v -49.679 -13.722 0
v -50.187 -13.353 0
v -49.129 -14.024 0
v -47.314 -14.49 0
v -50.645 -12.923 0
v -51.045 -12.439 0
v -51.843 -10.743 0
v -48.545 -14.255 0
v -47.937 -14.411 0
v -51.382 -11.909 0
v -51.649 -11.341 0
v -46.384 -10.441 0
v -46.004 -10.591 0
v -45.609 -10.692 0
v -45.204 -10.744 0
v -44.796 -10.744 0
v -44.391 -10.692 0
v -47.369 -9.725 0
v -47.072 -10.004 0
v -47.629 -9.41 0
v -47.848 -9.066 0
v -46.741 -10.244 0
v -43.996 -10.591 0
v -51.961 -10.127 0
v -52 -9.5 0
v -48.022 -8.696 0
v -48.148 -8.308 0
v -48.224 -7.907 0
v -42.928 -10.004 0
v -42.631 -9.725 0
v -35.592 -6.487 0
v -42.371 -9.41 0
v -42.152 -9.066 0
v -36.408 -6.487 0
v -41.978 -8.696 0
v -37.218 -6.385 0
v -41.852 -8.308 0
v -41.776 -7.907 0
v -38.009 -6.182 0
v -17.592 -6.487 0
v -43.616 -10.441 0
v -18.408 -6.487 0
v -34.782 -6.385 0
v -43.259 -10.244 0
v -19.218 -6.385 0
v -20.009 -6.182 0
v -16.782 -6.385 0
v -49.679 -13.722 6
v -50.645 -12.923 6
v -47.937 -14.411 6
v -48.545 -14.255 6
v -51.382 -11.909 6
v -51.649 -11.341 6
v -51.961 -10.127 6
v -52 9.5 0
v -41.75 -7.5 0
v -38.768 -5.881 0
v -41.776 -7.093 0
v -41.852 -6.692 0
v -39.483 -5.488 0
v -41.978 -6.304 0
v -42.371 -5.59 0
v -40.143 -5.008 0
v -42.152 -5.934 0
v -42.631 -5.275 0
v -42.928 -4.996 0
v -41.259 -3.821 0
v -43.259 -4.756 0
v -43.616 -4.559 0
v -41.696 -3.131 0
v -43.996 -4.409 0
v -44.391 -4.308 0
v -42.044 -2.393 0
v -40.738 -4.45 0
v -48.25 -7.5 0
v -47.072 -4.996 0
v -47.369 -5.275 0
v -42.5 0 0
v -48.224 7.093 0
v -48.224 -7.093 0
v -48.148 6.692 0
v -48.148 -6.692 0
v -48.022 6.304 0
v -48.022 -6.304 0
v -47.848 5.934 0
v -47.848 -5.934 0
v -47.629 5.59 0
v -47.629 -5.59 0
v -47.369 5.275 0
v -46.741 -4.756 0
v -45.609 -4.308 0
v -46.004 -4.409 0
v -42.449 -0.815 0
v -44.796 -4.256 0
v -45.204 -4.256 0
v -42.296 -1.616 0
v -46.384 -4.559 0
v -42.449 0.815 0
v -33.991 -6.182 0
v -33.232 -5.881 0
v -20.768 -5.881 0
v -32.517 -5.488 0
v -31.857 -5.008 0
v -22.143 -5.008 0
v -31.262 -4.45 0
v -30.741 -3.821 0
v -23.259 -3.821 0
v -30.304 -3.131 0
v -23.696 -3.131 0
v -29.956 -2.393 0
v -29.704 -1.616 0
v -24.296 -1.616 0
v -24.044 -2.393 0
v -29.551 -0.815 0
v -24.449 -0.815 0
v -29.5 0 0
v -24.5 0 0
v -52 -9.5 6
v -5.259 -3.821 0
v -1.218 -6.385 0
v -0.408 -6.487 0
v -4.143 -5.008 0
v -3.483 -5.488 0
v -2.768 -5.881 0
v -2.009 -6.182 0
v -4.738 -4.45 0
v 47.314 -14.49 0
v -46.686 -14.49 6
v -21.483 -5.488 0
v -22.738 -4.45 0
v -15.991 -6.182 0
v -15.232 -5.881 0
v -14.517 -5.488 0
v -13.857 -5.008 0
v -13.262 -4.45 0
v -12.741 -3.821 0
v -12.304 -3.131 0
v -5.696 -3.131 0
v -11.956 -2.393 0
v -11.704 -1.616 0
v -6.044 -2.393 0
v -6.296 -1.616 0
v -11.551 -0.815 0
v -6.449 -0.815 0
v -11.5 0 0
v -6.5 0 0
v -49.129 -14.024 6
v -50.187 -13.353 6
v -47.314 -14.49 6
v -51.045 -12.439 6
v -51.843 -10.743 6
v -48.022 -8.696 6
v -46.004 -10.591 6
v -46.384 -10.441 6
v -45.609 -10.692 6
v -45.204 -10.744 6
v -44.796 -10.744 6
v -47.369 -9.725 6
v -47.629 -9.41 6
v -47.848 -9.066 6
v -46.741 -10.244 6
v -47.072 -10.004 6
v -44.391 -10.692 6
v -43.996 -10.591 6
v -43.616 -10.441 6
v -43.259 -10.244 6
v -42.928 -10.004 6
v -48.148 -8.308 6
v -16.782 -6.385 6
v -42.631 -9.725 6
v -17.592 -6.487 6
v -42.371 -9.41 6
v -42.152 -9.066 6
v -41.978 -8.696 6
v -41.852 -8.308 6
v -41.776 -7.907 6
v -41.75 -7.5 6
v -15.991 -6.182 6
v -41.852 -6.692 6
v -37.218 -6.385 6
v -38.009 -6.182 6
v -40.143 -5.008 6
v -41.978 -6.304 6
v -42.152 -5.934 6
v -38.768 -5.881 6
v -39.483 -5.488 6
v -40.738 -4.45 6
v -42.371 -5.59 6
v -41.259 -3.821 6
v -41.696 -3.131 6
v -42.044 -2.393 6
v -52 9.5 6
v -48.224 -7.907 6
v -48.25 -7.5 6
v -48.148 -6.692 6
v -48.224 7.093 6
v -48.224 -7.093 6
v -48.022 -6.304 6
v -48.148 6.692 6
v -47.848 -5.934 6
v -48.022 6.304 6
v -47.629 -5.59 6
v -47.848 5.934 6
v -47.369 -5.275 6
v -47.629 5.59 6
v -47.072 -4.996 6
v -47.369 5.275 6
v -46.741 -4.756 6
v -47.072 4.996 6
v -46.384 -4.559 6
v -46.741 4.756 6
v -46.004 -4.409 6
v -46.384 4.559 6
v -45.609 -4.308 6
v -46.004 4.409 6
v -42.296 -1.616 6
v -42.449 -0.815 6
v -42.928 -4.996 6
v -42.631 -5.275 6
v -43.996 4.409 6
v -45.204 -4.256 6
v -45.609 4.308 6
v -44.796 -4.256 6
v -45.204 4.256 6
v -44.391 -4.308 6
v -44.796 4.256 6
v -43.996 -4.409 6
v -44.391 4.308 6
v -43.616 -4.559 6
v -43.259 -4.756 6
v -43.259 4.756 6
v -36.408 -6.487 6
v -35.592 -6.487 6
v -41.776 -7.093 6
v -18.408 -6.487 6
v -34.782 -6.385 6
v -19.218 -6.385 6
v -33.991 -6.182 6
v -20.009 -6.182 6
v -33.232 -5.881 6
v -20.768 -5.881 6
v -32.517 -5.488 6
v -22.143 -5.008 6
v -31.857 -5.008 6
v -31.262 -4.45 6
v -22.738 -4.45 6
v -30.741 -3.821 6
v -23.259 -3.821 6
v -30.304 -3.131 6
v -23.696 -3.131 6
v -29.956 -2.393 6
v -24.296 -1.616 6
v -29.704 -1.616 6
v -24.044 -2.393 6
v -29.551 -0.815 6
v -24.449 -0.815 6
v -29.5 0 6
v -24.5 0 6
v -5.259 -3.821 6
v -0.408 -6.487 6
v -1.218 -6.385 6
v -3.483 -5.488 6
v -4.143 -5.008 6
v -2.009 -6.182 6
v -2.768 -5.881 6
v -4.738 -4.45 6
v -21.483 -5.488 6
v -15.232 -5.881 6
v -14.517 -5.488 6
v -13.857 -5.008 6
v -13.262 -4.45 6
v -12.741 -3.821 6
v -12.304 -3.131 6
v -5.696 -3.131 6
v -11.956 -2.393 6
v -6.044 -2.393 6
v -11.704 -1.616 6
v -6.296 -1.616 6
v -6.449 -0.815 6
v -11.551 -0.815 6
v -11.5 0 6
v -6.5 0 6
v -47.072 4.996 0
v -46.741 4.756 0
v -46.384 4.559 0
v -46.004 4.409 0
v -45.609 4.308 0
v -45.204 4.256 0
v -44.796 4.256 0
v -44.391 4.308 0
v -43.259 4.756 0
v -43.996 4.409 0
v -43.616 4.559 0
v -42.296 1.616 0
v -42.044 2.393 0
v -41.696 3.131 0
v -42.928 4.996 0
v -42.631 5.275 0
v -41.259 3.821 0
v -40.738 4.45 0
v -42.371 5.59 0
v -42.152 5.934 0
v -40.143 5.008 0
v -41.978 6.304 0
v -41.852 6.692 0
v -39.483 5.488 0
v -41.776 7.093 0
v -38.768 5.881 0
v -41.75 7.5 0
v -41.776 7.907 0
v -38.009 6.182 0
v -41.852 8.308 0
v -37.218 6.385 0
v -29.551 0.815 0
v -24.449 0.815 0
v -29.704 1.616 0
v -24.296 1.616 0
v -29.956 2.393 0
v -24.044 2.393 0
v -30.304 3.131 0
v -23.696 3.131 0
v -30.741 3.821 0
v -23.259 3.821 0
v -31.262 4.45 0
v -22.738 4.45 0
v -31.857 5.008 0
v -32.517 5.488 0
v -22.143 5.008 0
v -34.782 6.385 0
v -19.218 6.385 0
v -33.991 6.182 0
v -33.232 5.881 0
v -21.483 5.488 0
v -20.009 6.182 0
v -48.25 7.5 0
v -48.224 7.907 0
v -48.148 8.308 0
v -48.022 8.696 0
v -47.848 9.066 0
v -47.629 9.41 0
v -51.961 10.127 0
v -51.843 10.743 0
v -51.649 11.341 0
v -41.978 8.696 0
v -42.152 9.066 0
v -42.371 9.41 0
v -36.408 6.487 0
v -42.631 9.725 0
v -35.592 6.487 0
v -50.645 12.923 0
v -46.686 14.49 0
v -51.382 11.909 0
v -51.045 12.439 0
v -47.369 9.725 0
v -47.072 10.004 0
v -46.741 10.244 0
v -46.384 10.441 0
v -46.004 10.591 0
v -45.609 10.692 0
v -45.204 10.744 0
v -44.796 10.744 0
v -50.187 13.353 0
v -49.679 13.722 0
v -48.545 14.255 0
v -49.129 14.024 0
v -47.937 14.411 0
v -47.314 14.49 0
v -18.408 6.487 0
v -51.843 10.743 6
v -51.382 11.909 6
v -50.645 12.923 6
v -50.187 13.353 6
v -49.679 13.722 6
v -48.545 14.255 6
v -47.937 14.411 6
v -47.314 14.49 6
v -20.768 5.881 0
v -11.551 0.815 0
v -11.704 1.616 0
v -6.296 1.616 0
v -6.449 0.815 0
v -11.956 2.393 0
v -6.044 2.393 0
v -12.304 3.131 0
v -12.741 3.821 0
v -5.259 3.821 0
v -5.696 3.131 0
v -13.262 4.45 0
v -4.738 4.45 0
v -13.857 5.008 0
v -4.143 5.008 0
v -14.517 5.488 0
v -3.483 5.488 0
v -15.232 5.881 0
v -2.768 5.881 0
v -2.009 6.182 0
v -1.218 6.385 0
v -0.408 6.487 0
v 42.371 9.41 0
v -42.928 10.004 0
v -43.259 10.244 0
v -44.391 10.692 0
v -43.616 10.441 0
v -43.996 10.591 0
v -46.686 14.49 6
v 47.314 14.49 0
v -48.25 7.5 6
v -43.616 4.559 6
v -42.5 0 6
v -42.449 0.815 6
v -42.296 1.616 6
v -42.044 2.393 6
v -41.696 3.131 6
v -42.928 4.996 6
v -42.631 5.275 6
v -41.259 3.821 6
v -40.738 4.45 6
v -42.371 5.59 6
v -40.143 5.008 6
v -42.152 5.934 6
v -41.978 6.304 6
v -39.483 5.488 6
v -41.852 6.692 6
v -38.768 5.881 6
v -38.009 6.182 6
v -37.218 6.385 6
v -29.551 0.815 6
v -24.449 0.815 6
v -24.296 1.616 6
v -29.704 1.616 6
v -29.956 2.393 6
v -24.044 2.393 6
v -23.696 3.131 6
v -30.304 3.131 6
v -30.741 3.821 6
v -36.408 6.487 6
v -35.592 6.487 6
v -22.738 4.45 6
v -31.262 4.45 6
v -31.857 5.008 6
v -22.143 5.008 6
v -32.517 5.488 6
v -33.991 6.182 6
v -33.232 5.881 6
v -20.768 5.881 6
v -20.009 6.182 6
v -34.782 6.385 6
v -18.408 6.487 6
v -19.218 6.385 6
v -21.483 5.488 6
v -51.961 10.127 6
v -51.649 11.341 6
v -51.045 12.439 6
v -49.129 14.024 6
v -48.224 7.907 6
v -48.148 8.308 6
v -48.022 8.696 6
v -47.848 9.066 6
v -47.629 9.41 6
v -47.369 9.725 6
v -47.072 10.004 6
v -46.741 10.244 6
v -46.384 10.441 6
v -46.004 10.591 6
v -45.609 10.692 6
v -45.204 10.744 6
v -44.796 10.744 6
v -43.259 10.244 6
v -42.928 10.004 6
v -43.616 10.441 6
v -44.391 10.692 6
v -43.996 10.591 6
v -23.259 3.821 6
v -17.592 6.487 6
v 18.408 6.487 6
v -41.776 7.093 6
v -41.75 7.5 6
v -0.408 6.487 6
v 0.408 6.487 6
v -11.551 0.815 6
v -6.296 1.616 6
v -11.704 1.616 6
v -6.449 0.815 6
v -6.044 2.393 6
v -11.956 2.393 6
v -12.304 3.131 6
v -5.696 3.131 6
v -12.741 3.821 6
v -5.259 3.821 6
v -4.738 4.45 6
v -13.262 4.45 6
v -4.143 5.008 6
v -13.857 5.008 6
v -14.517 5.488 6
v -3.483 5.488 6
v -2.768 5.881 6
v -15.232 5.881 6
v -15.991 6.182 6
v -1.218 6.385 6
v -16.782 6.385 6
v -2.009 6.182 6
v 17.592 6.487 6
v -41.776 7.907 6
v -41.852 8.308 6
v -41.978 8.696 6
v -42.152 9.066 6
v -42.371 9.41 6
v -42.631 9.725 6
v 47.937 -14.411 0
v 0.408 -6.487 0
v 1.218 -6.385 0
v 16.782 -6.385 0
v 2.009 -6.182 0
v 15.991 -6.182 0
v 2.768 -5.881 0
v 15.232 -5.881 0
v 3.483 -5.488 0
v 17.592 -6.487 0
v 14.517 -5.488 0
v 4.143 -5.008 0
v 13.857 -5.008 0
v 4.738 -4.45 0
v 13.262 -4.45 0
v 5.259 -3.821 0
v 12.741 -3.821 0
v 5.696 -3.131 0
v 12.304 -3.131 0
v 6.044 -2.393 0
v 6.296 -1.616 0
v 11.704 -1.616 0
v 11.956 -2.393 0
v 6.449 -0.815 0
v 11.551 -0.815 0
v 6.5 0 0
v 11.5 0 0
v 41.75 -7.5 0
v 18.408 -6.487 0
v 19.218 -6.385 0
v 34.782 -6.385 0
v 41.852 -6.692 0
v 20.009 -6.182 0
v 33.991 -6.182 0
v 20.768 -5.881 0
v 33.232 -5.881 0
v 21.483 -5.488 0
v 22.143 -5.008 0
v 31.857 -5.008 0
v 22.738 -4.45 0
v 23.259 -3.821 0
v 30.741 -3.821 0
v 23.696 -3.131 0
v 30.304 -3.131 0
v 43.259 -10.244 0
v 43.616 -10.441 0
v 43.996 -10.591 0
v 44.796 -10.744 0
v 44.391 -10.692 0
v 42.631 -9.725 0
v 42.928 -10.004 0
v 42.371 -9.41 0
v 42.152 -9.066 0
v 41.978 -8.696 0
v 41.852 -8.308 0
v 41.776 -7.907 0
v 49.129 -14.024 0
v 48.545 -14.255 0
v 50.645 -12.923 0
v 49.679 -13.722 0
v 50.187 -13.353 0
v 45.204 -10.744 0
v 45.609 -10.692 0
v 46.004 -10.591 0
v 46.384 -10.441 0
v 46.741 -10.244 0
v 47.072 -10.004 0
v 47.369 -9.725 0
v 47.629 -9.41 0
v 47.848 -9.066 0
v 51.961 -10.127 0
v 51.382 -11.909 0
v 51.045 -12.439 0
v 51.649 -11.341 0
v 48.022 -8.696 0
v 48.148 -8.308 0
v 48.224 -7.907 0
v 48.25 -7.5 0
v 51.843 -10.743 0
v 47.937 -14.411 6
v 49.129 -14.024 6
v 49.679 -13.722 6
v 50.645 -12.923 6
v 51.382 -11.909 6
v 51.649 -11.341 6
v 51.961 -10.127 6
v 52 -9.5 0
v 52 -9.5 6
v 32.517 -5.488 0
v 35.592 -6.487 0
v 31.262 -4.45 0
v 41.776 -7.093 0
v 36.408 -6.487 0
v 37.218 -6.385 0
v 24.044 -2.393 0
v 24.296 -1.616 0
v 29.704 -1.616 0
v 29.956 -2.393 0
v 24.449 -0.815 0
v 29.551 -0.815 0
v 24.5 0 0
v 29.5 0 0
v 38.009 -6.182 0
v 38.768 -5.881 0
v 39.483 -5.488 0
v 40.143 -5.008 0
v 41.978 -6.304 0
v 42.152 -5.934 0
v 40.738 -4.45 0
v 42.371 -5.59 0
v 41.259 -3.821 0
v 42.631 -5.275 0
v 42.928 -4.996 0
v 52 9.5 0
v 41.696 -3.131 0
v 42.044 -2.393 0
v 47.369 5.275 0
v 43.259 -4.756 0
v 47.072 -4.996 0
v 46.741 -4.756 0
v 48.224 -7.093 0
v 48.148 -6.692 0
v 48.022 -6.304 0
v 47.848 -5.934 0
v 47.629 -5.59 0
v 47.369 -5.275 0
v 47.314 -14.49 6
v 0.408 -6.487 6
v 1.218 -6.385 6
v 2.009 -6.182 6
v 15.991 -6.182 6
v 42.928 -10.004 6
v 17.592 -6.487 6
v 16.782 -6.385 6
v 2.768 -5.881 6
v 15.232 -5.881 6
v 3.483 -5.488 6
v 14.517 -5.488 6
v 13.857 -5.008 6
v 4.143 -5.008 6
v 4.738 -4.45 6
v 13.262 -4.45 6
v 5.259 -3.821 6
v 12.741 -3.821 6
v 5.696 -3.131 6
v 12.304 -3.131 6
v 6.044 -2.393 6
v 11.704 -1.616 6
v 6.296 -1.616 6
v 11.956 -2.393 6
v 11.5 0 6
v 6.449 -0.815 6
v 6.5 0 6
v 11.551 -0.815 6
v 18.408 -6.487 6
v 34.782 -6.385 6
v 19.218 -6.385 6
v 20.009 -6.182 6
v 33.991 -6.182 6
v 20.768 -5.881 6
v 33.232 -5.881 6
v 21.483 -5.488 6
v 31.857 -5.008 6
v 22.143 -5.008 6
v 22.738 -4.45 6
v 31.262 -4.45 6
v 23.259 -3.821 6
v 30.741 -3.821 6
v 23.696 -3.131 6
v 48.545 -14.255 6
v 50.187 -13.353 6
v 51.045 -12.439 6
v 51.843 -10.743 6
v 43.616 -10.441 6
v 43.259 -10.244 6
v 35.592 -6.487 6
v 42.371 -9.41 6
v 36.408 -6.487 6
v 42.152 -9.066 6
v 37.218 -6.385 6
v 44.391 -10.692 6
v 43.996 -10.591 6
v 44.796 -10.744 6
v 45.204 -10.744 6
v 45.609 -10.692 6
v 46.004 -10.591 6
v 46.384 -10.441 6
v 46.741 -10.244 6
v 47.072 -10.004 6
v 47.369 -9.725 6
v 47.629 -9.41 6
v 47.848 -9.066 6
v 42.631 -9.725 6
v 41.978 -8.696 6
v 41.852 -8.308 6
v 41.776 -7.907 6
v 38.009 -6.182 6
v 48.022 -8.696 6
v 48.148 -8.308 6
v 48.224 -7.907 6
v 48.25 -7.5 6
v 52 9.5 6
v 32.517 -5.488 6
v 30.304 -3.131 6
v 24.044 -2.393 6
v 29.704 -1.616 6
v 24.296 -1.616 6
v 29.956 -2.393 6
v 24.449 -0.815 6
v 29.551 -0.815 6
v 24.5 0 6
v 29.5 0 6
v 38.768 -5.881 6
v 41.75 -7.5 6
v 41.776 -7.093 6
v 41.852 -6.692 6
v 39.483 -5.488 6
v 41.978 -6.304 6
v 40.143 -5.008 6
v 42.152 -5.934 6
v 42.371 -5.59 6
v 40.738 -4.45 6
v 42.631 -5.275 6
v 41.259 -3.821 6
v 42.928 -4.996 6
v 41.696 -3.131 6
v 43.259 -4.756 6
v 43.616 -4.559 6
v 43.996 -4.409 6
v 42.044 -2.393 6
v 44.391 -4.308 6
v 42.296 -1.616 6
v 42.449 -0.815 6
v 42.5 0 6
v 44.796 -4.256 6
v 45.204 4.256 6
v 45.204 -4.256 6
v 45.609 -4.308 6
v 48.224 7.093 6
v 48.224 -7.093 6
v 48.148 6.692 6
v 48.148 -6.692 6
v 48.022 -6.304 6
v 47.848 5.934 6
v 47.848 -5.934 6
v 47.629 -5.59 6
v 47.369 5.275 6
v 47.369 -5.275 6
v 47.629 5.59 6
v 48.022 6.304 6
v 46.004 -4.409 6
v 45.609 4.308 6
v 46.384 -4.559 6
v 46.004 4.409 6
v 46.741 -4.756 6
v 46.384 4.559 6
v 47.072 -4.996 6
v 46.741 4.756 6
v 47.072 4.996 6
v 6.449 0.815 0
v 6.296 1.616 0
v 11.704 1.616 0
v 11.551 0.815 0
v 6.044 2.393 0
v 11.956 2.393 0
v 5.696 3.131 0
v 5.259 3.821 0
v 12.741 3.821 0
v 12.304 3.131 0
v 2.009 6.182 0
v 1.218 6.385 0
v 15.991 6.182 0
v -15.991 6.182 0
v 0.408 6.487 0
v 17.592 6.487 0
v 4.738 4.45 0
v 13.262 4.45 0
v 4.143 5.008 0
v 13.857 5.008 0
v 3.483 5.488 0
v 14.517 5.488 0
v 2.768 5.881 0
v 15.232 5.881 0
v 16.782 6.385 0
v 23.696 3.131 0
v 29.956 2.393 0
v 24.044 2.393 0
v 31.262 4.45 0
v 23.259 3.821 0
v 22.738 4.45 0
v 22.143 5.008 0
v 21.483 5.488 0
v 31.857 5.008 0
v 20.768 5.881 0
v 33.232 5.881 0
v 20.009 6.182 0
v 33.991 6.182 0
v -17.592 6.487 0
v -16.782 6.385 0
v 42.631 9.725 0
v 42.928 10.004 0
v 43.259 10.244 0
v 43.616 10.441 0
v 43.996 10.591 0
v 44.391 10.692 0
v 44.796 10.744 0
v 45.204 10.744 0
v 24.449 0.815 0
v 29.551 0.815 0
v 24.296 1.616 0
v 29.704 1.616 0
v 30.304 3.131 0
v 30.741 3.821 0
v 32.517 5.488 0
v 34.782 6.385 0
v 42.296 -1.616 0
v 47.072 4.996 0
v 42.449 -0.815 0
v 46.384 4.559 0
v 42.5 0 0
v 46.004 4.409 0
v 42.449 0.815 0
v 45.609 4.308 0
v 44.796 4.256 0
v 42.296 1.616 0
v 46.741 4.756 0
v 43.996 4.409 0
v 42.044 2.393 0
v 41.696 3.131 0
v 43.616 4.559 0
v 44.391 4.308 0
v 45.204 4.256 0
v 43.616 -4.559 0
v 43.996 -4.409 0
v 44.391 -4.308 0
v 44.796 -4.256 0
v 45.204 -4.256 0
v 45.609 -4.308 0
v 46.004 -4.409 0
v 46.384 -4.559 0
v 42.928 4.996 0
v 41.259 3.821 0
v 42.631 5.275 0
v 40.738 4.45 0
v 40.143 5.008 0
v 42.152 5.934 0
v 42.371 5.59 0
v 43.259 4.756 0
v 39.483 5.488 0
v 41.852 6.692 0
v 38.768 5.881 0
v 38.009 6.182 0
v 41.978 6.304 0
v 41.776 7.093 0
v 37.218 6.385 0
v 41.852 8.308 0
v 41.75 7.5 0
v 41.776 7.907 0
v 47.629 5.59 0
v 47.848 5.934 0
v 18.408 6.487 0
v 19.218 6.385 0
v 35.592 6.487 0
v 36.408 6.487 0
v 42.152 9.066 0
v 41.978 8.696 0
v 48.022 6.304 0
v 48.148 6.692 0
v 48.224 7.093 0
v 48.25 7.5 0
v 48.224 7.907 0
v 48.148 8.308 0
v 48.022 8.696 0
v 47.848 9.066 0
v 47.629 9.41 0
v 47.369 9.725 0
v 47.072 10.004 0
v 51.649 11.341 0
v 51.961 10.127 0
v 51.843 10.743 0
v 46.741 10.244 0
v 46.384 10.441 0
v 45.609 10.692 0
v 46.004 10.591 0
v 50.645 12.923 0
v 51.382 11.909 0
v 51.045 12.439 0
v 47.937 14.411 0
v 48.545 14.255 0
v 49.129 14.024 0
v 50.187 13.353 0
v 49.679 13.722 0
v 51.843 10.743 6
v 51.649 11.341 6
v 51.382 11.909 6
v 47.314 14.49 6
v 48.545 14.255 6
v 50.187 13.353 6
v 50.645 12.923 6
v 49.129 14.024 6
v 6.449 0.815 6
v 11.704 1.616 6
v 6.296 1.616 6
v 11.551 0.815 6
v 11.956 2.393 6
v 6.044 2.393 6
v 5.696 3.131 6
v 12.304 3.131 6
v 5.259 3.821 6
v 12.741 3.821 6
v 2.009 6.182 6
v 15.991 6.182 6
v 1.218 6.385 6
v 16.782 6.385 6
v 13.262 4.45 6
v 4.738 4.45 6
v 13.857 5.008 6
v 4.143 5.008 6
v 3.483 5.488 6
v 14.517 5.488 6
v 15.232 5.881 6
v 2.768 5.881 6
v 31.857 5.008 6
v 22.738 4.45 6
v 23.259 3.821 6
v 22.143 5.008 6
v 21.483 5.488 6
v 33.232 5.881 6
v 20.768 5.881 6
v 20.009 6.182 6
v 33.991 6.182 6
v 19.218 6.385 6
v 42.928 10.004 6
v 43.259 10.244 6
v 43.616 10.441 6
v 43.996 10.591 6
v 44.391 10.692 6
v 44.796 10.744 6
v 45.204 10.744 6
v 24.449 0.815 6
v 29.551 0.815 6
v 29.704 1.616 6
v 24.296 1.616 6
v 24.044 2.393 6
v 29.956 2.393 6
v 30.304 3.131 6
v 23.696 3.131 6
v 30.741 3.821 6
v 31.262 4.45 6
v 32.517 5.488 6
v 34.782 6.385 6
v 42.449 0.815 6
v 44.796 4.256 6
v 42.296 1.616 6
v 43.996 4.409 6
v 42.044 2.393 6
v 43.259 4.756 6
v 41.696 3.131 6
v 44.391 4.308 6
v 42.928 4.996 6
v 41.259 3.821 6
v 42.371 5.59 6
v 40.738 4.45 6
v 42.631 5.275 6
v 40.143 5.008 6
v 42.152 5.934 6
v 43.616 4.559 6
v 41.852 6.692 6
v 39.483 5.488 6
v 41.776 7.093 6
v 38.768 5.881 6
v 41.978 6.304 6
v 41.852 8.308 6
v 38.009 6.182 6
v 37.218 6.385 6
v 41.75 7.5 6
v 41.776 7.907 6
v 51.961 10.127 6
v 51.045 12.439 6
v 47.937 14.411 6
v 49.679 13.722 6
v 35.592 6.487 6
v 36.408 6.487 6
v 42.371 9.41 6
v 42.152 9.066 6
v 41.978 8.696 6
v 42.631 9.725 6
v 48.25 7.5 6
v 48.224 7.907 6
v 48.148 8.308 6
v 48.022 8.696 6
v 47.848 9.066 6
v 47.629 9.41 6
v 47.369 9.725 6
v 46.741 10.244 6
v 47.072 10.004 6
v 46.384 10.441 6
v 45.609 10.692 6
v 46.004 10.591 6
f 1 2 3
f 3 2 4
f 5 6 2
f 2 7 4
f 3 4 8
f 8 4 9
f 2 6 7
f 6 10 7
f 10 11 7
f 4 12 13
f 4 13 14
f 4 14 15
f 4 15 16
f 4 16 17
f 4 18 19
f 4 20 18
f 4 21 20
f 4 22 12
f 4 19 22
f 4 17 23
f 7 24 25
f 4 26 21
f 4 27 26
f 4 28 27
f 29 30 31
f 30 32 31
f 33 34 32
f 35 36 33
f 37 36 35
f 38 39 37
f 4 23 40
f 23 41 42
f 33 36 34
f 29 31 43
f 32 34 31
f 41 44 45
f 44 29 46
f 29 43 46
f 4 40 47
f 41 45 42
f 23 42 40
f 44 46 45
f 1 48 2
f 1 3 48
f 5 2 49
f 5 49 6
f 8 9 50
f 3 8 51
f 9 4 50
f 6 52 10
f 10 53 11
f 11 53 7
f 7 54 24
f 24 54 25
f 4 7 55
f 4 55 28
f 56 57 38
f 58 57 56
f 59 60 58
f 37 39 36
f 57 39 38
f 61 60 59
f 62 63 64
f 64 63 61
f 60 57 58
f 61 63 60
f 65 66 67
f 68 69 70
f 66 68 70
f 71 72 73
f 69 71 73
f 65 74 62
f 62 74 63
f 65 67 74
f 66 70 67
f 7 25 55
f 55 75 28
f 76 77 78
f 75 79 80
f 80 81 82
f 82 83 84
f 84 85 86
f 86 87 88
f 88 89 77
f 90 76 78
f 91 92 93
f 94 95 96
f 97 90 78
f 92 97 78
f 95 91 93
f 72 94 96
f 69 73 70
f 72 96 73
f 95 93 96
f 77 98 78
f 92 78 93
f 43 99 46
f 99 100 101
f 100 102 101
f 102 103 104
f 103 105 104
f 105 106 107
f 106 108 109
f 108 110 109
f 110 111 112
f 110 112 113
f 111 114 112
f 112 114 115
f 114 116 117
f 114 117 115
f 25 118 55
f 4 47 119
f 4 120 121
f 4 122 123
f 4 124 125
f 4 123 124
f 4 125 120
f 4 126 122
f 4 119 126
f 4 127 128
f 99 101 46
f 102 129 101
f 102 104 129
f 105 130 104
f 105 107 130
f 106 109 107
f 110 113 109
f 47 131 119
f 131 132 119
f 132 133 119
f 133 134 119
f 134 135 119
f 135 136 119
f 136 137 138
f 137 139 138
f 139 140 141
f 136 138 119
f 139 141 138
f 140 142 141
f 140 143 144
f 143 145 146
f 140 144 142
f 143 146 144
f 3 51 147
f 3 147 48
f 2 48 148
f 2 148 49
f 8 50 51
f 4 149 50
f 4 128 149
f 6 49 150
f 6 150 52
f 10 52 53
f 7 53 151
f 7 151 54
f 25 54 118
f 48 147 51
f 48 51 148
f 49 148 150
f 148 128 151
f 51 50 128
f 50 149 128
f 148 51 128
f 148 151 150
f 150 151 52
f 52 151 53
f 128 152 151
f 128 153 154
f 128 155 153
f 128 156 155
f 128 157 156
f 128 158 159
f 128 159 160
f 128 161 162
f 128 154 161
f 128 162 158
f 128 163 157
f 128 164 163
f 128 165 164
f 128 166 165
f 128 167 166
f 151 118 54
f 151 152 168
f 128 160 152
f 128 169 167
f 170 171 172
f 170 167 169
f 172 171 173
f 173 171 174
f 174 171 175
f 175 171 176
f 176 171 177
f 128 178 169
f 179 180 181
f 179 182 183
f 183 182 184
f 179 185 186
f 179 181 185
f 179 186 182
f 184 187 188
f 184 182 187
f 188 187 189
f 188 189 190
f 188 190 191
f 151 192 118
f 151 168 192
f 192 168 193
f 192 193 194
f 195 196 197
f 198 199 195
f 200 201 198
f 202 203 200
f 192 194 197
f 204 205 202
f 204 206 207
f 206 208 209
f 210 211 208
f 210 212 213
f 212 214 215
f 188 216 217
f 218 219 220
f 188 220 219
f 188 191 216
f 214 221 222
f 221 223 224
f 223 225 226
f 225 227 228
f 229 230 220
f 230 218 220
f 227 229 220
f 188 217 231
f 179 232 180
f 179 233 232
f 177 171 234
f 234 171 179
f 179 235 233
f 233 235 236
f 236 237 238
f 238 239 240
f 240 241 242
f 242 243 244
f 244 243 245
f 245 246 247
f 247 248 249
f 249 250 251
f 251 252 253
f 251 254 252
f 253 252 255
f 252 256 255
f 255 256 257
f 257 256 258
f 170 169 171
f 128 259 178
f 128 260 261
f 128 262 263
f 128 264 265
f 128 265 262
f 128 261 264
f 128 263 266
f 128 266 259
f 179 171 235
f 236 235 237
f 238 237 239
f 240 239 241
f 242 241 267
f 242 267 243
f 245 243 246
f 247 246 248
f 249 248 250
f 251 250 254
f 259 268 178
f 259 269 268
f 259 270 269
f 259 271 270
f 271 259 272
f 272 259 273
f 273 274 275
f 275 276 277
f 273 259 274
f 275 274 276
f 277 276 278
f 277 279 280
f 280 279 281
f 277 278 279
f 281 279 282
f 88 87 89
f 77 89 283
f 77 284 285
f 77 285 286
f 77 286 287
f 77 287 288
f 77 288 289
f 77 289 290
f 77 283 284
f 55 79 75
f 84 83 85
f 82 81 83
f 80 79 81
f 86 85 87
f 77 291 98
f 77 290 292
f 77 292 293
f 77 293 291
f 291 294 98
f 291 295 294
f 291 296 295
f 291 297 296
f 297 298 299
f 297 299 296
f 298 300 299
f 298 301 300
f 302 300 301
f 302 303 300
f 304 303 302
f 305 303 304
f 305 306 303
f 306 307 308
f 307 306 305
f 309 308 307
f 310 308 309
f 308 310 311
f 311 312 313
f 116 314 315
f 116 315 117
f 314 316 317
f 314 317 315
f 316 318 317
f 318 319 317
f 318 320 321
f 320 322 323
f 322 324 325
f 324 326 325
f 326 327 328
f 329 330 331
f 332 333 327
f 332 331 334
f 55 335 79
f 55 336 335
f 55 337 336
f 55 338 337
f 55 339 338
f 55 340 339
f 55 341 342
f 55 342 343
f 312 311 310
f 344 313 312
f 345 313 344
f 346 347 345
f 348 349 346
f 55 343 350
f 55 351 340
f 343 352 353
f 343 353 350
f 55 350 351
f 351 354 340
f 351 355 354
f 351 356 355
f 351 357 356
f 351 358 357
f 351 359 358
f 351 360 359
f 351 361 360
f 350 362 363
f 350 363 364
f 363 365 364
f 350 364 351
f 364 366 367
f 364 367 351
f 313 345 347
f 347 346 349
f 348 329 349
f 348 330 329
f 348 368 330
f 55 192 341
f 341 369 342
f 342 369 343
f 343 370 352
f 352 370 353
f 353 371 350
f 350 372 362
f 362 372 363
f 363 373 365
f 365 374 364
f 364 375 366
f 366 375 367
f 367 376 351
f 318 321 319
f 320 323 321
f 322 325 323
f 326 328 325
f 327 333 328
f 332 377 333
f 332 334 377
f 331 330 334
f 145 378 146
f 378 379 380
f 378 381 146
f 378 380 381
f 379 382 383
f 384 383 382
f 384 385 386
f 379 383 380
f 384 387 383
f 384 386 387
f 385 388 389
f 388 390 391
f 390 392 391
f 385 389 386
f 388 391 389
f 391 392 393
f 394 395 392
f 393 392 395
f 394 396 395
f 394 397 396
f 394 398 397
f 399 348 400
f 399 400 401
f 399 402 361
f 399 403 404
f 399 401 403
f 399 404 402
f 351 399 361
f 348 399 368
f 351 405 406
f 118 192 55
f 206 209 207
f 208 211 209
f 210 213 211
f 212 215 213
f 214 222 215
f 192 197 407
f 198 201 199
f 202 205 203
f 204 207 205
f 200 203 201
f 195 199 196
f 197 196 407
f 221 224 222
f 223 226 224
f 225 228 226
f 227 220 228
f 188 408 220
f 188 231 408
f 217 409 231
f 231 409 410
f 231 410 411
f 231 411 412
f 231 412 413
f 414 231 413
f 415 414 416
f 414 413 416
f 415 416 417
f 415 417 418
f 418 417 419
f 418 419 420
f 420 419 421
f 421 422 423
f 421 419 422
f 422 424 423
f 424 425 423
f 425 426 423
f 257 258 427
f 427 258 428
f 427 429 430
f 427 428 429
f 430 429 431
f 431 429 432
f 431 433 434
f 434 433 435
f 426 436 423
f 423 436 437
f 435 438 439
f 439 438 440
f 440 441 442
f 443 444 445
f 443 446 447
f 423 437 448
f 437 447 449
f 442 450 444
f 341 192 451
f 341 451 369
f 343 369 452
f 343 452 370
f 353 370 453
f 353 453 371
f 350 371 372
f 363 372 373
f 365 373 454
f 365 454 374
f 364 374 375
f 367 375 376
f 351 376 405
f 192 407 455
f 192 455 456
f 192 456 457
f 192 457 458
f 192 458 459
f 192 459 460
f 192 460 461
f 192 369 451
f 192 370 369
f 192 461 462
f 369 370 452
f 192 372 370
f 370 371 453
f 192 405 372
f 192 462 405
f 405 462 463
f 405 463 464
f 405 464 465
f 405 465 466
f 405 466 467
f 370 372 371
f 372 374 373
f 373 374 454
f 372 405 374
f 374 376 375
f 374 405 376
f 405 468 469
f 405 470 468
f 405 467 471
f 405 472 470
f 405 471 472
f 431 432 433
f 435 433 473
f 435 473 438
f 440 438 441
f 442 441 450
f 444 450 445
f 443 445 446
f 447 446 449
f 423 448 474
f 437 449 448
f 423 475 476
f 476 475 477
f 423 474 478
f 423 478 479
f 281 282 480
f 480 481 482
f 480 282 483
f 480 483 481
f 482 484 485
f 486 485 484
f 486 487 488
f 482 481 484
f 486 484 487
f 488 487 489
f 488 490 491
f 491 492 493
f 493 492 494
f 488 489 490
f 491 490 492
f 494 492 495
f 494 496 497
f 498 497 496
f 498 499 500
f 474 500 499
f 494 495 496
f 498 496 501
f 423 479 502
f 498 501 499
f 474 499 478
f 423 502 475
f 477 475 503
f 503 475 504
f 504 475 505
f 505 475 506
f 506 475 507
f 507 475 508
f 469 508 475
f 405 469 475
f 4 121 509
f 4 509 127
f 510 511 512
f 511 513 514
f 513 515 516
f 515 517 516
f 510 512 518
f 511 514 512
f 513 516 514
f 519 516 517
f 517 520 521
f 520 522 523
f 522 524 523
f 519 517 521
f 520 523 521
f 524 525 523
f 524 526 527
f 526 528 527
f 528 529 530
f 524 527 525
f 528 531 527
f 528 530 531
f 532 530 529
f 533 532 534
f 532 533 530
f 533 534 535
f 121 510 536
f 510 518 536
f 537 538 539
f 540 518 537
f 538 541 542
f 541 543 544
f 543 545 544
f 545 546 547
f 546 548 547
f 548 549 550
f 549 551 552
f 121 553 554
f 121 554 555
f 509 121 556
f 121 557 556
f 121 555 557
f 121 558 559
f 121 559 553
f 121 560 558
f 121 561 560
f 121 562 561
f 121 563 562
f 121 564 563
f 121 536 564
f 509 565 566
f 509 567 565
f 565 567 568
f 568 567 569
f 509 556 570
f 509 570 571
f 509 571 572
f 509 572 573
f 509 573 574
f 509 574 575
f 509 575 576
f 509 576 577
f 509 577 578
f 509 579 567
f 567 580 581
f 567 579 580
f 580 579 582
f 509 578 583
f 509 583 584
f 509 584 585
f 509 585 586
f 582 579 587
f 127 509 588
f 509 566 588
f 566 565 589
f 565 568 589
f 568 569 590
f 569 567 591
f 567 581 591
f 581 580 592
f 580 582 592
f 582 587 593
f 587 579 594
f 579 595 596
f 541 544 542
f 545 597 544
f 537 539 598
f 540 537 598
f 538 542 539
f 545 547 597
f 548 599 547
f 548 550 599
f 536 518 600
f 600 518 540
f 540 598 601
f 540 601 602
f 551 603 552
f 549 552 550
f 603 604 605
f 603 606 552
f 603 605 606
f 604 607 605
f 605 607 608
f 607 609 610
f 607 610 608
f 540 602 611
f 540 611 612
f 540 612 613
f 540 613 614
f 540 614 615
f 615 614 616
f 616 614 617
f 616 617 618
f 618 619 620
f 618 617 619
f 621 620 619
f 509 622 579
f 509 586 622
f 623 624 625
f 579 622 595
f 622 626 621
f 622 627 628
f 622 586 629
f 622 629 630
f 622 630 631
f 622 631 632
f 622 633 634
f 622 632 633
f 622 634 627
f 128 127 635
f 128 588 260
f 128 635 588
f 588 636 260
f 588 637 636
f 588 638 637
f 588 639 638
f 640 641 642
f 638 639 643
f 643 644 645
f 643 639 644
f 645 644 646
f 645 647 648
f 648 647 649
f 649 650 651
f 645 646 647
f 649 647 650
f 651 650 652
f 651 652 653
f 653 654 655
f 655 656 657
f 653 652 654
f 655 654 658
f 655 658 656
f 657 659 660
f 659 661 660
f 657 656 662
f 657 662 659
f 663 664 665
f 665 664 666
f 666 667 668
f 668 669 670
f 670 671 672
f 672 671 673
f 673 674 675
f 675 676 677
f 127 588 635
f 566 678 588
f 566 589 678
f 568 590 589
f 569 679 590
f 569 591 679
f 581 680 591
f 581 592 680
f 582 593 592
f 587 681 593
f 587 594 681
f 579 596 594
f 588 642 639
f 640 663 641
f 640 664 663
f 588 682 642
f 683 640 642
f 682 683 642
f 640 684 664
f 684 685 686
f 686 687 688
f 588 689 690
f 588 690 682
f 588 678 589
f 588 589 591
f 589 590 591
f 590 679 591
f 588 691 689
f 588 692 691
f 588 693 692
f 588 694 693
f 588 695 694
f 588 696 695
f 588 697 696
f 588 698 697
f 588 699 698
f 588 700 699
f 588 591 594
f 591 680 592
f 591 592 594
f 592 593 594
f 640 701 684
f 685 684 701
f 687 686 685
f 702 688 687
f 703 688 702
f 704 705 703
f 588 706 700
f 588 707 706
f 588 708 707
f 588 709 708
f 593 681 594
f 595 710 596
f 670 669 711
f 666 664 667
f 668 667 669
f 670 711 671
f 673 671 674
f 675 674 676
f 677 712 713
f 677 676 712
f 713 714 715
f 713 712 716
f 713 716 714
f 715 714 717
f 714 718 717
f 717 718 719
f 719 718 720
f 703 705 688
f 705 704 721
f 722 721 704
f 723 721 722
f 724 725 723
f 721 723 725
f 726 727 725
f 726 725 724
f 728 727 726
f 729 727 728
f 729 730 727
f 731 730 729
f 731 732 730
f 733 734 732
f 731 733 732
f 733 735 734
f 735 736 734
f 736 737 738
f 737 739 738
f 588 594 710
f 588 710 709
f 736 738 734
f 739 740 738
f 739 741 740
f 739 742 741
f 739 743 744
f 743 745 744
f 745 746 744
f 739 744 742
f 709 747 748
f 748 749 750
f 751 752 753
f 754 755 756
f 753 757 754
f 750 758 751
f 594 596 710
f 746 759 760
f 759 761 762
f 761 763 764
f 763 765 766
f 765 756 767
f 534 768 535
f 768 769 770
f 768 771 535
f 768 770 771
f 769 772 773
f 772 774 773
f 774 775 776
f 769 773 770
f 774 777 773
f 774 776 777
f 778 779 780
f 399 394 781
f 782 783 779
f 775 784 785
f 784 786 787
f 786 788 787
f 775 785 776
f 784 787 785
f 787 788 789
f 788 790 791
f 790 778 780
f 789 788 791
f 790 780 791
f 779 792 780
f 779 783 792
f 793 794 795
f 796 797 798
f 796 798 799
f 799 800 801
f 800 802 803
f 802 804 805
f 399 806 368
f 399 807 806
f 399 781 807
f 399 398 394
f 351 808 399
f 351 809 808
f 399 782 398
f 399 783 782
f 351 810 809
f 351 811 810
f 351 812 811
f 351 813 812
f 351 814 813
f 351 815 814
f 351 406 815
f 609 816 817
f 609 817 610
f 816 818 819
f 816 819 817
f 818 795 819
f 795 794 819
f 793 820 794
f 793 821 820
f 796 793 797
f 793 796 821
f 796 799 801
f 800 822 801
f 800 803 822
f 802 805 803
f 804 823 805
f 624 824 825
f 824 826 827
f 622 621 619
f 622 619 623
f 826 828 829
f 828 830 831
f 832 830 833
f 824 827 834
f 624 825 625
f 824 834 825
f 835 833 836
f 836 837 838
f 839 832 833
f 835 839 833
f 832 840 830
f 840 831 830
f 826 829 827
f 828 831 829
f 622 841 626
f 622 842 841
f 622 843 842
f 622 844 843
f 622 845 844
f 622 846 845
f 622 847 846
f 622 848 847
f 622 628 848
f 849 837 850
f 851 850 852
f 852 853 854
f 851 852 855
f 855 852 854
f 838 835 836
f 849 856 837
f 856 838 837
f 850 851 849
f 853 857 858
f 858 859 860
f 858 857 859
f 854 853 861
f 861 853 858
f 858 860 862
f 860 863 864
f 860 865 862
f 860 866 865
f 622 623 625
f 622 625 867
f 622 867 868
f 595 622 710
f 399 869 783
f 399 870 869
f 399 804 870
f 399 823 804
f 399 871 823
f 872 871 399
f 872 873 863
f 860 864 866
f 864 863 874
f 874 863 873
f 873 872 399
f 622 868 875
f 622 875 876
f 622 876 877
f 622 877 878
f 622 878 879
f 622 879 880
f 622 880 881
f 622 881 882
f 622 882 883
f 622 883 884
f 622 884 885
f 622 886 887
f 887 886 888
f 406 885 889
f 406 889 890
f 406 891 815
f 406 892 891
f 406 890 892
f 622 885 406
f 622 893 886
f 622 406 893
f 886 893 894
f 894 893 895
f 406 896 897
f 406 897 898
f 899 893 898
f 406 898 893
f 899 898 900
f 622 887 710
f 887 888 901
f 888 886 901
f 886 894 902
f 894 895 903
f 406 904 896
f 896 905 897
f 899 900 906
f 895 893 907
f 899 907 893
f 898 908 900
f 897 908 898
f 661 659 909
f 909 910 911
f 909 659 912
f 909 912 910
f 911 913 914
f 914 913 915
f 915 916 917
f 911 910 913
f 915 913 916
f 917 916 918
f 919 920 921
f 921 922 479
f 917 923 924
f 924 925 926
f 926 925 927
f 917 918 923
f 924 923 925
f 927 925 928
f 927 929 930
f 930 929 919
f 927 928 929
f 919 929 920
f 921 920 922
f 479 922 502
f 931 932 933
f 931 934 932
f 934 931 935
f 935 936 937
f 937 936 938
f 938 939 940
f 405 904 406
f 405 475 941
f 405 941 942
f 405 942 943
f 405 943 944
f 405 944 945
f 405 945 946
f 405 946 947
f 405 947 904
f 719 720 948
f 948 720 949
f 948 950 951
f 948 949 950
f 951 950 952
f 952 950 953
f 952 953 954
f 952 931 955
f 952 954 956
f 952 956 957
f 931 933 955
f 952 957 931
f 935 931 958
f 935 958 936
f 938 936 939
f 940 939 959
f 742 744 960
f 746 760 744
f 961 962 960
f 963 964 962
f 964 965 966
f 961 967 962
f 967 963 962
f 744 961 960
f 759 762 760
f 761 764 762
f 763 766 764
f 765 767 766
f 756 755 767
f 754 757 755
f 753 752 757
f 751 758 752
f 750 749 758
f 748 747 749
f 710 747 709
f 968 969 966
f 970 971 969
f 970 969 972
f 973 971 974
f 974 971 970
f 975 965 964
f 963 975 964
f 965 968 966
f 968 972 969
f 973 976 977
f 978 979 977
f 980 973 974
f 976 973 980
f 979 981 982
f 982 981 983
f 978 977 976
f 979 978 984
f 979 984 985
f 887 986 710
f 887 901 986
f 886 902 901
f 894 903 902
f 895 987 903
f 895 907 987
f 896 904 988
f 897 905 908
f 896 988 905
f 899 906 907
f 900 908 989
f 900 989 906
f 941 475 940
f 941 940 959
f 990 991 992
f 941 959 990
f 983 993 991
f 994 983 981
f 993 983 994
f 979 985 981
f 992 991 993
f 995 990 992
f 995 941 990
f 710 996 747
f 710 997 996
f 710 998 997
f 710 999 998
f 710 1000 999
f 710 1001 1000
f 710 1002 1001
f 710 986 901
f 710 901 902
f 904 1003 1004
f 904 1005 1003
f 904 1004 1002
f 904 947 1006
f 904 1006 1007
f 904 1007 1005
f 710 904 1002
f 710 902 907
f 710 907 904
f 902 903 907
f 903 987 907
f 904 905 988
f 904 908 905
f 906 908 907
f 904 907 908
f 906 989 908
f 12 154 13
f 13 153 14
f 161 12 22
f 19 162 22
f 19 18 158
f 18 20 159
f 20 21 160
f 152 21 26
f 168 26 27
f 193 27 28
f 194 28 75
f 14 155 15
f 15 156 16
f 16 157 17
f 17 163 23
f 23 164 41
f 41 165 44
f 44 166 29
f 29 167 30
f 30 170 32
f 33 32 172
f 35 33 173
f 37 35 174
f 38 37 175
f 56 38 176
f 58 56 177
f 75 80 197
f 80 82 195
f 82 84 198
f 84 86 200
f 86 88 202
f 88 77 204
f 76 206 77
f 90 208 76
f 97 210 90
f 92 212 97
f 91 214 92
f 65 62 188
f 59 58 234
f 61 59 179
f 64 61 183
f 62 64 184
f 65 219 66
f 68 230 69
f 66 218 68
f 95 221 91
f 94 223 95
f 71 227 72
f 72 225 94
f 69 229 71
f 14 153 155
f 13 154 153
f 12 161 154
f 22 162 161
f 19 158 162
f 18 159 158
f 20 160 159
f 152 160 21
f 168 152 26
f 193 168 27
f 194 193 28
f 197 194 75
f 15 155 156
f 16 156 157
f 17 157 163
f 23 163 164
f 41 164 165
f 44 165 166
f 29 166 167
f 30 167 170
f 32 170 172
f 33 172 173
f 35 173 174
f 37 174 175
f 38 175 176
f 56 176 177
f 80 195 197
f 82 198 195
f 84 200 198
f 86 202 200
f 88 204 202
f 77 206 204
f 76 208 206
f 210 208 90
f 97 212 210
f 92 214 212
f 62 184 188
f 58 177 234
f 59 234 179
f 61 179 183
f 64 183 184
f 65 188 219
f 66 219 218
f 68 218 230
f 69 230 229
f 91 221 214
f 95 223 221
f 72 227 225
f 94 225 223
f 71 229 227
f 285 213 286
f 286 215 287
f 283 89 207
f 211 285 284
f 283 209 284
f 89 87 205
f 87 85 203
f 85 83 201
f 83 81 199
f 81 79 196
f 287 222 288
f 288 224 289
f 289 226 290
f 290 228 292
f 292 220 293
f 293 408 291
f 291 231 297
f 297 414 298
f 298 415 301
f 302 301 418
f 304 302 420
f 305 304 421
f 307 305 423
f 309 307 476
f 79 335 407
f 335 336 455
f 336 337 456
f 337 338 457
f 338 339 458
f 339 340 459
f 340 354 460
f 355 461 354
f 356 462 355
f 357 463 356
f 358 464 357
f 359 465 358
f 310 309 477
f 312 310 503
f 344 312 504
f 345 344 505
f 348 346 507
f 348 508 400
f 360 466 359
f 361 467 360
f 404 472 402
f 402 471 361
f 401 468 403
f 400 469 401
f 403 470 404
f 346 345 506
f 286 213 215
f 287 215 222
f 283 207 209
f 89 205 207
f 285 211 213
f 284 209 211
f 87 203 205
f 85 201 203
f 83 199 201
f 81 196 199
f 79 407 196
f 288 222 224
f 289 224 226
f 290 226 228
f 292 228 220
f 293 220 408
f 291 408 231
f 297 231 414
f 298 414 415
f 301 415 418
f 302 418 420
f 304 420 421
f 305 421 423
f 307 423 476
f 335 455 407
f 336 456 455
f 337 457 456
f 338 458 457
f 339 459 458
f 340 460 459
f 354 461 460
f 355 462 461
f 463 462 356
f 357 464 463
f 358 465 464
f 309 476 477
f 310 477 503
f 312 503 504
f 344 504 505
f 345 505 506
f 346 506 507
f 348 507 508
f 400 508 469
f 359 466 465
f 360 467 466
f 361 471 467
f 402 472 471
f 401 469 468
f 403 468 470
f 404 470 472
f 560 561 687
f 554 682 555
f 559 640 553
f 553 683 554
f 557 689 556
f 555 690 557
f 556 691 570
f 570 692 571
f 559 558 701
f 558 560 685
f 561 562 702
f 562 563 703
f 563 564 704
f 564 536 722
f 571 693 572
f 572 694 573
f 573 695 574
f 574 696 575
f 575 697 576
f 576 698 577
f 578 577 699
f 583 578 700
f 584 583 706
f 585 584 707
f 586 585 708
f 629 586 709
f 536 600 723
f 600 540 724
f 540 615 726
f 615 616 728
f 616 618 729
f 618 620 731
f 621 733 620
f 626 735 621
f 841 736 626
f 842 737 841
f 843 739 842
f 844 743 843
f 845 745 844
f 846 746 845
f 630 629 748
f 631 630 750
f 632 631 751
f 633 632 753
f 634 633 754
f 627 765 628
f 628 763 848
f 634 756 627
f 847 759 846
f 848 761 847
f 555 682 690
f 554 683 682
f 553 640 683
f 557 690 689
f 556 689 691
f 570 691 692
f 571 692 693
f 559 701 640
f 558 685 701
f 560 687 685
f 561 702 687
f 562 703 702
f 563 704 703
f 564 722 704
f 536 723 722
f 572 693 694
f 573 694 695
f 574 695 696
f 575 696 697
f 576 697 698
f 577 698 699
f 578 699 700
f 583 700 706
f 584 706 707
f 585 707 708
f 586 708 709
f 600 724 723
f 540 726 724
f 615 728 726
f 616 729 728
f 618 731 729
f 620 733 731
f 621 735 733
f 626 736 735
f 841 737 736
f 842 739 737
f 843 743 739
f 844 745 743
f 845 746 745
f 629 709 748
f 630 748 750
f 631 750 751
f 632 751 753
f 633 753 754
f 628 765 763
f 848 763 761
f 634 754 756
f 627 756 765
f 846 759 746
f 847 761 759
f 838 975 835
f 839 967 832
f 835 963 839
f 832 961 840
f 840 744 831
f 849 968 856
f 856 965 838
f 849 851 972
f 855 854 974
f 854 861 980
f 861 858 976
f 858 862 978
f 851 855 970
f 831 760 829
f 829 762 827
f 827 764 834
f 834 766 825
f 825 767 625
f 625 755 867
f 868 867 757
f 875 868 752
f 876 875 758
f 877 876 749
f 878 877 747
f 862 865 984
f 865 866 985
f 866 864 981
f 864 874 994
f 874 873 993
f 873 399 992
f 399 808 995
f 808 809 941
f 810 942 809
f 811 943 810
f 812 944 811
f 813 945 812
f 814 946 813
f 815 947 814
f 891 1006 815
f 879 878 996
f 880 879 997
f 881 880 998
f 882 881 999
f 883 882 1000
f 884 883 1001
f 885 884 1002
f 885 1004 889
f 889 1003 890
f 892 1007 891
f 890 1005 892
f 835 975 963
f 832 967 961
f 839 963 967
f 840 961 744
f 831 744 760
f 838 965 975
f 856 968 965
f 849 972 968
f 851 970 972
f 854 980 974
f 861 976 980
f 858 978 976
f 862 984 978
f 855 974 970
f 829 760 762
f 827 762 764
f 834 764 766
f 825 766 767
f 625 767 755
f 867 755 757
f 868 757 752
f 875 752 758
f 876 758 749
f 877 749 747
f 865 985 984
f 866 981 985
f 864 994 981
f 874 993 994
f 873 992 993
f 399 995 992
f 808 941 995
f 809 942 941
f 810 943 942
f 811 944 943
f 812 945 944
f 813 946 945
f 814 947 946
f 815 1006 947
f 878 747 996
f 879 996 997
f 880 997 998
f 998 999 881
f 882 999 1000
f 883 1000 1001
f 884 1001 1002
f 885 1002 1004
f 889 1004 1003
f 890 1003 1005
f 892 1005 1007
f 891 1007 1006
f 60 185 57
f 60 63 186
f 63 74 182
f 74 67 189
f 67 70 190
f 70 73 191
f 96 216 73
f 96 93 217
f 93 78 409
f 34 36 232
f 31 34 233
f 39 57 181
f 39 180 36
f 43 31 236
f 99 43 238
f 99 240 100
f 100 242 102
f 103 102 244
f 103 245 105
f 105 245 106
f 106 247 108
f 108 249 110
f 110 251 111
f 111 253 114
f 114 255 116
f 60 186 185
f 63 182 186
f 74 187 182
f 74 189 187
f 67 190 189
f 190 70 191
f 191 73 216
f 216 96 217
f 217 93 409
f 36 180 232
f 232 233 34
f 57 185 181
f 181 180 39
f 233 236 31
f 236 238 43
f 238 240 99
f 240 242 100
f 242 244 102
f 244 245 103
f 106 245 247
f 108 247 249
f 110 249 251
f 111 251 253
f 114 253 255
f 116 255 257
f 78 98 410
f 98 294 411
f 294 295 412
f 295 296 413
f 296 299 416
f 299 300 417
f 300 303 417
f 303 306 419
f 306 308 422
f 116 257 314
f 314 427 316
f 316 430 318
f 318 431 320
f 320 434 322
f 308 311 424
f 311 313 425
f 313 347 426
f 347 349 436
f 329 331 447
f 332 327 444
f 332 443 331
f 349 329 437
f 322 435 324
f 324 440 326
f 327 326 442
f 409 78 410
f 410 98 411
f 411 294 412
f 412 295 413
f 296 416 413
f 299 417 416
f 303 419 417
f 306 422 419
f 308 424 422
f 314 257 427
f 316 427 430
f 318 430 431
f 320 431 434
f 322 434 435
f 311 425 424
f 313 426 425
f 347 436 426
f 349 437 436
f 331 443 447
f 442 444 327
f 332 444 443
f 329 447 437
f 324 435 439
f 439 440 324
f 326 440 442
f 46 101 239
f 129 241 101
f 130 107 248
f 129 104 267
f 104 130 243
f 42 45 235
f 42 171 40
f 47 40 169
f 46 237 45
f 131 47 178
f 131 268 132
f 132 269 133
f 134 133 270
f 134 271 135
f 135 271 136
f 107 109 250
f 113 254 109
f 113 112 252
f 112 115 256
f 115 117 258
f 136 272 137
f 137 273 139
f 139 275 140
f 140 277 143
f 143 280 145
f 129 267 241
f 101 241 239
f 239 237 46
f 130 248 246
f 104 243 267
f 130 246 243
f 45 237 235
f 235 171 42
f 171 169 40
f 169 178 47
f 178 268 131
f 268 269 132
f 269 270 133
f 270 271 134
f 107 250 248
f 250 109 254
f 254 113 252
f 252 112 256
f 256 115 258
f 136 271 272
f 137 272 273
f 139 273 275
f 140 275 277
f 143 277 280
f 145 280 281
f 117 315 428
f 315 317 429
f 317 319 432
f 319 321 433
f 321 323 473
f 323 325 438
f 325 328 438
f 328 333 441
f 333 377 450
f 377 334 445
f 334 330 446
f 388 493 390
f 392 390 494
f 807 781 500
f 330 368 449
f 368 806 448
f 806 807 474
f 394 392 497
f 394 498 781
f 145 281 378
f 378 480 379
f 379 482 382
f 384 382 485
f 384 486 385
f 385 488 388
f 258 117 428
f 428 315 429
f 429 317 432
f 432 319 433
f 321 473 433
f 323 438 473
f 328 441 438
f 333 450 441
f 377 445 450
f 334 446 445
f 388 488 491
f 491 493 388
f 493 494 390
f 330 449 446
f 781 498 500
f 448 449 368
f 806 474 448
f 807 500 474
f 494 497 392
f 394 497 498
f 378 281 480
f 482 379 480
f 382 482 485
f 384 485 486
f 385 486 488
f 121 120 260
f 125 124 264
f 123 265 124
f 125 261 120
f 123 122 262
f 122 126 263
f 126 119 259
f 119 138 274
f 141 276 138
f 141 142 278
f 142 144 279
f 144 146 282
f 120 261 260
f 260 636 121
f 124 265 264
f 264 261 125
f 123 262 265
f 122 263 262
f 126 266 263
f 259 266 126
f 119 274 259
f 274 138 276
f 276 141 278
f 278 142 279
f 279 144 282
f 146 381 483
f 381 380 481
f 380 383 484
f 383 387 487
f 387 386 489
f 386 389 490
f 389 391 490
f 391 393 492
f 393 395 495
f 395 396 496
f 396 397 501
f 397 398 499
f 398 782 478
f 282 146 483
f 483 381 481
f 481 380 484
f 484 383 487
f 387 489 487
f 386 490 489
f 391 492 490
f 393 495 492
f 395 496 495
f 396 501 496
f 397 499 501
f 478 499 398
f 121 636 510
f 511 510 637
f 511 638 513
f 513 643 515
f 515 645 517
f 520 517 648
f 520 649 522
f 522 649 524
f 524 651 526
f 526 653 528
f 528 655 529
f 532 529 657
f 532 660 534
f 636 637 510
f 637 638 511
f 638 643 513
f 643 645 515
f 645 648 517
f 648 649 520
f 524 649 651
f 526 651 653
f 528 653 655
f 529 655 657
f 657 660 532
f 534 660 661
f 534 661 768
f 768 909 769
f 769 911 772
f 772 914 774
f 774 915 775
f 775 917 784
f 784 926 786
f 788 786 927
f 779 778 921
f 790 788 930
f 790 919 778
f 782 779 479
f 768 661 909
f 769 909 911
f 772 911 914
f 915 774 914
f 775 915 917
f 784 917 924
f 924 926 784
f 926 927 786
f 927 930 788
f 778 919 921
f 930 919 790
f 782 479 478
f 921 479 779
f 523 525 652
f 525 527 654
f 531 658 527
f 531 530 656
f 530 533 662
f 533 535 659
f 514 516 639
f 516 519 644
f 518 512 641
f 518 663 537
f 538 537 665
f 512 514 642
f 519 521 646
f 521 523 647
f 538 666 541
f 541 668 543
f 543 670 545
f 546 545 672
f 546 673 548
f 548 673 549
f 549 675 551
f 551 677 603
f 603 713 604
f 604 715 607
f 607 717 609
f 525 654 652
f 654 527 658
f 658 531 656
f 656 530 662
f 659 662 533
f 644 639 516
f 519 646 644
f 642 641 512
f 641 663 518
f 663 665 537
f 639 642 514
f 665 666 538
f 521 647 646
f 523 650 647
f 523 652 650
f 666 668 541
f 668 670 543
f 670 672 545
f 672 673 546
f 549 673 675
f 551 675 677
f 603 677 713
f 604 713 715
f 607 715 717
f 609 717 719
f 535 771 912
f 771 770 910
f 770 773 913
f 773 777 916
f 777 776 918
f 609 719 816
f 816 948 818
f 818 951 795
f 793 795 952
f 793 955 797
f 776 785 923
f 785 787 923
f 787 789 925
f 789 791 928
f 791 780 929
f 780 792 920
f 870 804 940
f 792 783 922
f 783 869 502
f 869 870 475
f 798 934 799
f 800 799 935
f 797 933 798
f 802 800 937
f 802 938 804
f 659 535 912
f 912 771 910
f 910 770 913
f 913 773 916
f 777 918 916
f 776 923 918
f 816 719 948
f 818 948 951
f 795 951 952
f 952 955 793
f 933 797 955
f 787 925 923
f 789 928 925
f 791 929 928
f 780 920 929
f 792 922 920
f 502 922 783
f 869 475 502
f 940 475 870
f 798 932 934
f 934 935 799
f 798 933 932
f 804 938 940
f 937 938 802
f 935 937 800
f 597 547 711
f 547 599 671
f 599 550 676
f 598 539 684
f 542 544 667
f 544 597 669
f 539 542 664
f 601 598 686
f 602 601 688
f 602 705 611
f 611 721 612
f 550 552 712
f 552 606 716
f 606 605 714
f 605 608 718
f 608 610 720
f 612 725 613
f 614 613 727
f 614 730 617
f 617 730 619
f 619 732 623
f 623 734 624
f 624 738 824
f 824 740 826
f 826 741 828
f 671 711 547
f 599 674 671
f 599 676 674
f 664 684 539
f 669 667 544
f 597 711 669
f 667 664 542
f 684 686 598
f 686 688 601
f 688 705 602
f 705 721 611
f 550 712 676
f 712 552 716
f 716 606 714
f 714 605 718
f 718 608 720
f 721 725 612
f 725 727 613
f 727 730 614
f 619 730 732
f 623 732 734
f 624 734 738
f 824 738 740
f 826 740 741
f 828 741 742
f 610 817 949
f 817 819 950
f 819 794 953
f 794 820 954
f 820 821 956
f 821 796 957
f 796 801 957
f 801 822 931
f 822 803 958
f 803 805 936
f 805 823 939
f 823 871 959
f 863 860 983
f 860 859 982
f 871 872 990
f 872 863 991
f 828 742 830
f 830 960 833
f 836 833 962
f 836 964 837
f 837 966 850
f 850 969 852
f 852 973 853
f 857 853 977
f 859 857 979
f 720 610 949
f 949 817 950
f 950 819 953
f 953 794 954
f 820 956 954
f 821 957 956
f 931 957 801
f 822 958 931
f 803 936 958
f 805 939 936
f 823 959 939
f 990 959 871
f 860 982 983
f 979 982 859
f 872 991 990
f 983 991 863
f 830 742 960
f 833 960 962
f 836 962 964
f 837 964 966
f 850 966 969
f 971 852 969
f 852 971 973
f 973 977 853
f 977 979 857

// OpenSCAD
$fn = 50;

difference() {
	union() {
		hull() {
			translate(v = [-47.0, 9.5, 0]) {
				cylinder(h = 6, r = 5);
			}
			translate(v = [47.0, 9.5, 0]) {
				cylinder(h = 6, r = 5);
			}
			translate(v = [-47.0, -9.5, 0]) {
				cylinder(h = 6, r = 5);
			}
			translate(v = [47.0, -9.5, 0]) {
				cylinder(h = 6, r = 5);
			}
		}
	}
	union() {
		translate(v = [-45.0, -7.5, -100.0]) {
			cylinder(h = 200, r = 3.25);
		}
		translate(v = [-45.0, 7.5, -100.0]) {
			cylinder(h = 200, r = 3.25);
		}
		translate(v = [45.0, -7.5, -100.0]) {
			cylinder(h = 200, r = 3.25);
		}
		translate(v = [45.0, 7.5, -100.0]) {
			cylinder(h = 200, r = 3.25);
		}
		translate(v = [-45.0, -7.5, -100.0]) {
			cylinder(h = 200, r = 1.8);
		}
		translate(v = [-45.0, 7.5, -100.0]) {
			cylinder(h = 200, r = 1.8);
		}
		translate(v = [45.0, -7.5, -100.0]) {
			cylinder(h = 200, r = 1.8);
		}
		translate(v = [45.0, 7.5, -100.0]) {
			cylinder(h = 200, r = 1.8);
		}
		translate(v = [-36.0, 0, 0.0]) {
			cylinder(h = 6, r = 6.5);
		}
		translate(v = [-18.0, 0, 0.0]) {
			cylinder(h = 6, r = 6.5);
		}
		cylinder(h = 6, r = 6.5);
		translate(v = [18.0, 0, 0.0]) {
			cylinder(h = 6, r = 6.5);
		}
		translate(v = [36.0, 0, 0.0]) {
			cylinder(h = 6, r = 6.5);
		}
	}
}
